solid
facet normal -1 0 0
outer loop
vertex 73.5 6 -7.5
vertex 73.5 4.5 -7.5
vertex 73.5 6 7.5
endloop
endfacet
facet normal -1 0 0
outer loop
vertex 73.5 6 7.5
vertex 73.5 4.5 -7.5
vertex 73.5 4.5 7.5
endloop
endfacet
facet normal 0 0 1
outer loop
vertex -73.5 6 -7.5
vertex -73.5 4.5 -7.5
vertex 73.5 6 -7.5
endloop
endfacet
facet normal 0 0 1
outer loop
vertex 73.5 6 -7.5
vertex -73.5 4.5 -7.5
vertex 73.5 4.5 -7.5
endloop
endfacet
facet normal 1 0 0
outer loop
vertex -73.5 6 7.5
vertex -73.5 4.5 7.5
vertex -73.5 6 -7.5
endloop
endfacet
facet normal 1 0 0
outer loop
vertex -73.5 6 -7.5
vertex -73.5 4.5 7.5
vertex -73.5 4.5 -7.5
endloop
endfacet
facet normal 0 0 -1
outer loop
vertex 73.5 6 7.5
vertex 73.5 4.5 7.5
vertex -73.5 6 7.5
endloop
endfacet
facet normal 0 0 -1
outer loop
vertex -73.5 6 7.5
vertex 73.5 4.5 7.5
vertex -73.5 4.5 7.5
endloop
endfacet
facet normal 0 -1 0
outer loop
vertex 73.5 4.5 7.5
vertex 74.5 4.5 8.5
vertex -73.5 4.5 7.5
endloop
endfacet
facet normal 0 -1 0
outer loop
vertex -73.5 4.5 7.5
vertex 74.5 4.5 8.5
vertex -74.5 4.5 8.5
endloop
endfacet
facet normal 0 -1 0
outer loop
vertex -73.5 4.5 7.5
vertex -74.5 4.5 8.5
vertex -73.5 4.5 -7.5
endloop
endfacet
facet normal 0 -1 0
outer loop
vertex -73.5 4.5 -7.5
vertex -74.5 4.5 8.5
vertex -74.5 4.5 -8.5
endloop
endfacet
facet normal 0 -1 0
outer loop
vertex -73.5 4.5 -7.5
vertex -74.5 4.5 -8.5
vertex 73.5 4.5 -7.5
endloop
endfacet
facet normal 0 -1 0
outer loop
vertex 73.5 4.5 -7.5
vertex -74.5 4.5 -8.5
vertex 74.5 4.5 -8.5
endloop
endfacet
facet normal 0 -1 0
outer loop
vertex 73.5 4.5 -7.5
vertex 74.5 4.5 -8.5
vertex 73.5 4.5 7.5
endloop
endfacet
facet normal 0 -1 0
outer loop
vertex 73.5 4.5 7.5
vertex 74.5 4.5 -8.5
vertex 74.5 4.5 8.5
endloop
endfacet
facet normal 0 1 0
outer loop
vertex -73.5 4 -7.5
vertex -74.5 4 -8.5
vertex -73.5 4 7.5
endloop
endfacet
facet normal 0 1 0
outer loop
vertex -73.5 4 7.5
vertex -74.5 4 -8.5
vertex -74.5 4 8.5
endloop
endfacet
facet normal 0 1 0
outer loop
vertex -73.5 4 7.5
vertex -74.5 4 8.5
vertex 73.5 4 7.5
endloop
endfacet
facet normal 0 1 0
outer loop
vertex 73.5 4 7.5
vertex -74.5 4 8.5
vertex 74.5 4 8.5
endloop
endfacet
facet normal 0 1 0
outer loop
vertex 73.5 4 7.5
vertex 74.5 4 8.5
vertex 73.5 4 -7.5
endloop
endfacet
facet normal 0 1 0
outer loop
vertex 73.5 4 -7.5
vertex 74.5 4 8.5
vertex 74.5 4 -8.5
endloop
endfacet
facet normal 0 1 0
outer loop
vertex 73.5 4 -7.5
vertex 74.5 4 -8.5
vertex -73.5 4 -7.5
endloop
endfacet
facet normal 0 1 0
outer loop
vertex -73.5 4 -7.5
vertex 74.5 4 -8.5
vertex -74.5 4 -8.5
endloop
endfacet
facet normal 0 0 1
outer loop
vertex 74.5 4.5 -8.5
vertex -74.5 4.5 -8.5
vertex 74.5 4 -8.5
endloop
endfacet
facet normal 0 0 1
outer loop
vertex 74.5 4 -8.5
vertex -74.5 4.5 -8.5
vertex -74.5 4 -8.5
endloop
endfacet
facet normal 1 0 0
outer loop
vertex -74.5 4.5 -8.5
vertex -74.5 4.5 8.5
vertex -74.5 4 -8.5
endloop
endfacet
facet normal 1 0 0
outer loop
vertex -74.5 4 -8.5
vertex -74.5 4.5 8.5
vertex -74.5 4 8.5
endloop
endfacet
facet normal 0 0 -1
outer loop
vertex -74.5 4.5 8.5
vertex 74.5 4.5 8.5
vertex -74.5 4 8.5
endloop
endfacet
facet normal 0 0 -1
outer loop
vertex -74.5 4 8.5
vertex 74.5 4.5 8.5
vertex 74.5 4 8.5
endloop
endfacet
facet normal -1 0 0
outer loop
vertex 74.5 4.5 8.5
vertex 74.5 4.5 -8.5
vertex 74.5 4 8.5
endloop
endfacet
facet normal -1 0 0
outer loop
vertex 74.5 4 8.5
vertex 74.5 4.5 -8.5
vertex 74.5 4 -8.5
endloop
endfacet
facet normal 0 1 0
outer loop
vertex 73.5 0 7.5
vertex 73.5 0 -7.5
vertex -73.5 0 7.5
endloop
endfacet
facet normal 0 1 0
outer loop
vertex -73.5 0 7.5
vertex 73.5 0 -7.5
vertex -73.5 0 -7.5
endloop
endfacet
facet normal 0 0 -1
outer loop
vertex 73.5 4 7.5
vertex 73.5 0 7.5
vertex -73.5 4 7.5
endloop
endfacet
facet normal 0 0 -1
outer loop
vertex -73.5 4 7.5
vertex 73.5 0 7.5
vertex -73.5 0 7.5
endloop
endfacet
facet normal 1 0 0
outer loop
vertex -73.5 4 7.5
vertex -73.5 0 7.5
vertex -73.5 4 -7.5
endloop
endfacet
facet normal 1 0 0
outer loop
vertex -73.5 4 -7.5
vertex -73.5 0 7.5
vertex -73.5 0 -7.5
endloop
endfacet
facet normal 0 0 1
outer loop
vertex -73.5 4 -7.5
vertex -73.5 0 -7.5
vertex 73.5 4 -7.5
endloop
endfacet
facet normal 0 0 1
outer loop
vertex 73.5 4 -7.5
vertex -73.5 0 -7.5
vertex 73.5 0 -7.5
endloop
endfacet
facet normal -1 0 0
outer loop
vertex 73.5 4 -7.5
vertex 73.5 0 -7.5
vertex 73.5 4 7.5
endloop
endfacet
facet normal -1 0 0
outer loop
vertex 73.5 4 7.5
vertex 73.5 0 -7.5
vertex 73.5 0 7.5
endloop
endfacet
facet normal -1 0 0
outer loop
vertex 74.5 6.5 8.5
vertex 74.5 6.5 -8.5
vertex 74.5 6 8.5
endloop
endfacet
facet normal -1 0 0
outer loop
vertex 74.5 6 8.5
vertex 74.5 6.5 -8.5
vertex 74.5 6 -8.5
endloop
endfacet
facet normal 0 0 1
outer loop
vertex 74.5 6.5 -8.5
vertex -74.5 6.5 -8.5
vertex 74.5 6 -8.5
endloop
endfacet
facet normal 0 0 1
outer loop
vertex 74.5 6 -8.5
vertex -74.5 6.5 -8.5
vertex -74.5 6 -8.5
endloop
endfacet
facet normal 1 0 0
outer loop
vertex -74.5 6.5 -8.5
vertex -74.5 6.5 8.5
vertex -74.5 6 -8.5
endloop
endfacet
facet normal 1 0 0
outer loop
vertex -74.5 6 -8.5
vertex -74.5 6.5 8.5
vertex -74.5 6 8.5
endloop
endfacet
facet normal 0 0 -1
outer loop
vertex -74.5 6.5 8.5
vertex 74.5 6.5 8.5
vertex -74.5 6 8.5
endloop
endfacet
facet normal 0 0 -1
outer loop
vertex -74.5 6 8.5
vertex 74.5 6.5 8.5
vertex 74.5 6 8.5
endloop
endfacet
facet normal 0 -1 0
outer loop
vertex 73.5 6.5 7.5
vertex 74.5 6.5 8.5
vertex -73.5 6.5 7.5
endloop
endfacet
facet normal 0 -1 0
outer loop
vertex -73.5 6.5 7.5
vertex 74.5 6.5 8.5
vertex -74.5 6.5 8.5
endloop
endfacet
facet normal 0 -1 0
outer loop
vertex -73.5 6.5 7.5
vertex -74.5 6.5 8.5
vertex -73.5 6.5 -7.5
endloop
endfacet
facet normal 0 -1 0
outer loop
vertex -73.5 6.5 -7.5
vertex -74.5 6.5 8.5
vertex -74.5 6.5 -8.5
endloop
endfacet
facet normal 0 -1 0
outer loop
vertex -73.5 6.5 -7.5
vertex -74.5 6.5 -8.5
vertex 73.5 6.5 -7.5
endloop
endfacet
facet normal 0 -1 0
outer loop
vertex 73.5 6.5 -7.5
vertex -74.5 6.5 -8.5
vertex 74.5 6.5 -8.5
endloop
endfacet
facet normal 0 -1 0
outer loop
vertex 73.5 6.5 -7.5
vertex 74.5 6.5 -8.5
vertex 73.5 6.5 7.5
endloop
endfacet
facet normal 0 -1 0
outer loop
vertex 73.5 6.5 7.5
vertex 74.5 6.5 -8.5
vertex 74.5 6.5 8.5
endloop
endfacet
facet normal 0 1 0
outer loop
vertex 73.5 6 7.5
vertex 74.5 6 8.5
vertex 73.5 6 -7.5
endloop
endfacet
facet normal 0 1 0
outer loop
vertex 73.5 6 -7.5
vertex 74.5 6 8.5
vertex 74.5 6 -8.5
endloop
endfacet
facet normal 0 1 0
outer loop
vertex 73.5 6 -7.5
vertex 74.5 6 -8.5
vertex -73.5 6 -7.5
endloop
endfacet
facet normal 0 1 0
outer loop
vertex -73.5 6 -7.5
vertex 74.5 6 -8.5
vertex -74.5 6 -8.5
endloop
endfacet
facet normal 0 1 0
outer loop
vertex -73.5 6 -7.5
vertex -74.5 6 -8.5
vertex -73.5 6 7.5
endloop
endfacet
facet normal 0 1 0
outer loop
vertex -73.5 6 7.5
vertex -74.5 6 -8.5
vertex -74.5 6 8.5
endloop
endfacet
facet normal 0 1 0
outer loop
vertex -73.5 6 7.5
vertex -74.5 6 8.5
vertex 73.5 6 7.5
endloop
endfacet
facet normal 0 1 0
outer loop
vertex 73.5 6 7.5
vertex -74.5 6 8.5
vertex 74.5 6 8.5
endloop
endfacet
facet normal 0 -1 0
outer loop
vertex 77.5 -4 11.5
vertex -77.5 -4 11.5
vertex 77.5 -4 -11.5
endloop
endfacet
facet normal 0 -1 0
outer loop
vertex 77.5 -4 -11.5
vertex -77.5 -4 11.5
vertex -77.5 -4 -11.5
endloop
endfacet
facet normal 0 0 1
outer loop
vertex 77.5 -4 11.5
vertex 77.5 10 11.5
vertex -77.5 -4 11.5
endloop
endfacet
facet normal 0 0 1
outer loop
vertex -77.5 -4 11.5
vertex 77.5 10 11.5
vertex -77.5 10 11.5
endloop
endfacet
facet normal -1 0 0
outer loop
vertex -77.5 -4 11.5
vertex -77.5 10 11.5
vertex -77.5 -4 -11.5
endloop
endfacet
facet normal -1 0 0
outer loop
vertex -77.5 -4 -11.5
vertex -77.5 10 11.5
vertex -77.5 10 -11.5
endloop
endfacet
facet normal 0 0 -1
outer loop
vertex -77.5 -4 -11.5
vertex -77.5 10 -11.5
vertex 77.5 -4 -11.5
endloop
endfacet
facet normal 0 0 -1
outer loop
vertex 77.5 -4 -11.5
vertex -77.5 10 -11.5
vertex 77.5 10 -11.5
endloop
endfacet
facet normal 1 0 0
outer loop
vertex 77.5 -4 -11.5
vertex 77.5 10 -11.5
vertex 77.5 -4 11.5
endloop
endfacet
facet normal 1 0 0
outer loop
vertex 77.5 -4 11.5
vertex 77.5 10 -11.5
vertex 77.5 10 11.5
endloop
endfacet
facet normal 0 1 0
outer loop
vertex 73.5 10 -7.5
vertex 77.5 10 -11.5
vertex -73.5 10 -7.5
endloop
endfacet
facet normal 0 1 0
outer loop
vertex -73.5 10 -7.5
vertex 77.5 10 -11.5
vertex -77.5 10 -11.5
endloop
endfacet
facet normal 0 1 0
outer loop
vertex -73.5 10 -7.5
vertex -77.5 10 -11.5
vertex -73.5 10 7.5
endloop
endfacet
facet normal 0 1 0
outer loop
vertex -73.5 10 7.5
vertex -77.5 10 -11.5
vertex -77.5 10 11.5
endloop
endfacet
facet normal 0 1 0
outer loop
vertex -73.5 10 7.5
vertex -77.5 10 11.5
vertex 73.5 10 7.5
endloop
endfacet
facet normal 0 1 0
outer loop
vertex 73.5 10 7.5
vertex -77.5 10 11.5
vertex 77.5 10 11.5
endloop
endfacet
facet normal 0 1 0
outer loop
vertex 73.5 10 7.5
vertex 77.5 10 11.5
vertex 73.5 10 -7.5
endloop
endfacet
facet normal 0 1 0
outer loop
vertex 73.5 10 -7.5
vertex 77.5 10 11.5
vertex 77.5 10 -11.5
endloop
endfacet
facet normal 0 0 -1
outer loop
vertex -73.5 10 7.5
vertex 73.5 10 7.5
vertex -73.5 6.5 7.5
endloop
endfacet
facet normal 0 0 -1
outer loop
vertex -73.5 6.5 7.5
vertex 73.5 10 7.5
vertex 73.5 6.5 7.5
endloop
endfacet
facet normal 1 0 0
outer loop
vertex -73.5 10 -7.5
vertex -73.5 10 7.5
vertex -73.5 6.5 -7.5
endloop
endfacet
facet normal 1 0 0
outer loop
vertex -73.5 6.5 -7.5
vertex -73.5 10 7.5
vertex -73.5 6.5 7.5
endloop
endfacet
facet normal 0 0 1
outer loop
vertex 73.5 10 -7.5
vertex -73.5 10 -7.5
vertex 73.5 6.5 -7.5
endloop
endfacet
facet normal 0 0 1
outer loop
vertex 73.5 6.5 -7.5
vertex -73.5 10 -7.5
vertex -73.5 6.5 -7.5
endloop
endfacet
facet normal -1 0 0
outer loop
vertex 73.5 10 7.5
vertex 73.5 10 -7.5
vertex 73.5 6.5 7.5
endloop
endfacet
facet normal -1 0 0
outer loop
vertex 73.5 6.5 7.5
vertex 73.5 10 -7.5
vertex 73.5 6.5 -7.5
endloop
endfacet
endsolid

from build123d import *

# Parameters (mm, degrees)
SKIZZE1_W                       = 155
SKIZZE1_H                       = 23
SKIZZE1_W_2                     = 147
SKIZZE1_H_2                     = 15
AUFSATZ_LINEAR_AUSTRAGEN1_DEPTH = 10
SKIZZE3_W                       = 155
SKIZZE3_H                       = 23
AUFSATZ_LINEAR_AUSTRAGEN3_DEPTH = 4
SKIZZE4_W                       = 149
SKIZZE4_H                       = 17
SKIZZE4_W_2                     = 147
SKIZZE4_H_2                     = 15
SCHNITT_LINEAR_AUSTRAGEN1_DEPTH = 0.5
SKIZZE5_W                       = 149
SKIZZE5_H                       = 17
SCHNITT_LINEAR_AUSTRAGEN2_DEPTH = 0.5


with BuildPart() as part:
    # Skizze1 → Aufsatz-Linear austragen1 (new body)
    with BuildSketch(Plane(origin=(0, 0, 0), x_dir=(1, 0, 0), z_dir=(0, 1, 0))):
        Rectangle(SKIZZE1_W, SKIZZE1_H)
        Rectangle(SKIZZE1_W_2, SKIZZE1_H_2, mode=Mode.SUBTRACT)
    extrude(amount=AUFSATZ_LINEAR_AUSTRAGEN1_DEPTH)

    # Skizze3 → Aufsatz-Linear austragen3 (add)
    with BuildSketch(Plane.XZ):
        Rectangle(SKIZZE3_W, SKIZZE3_H)
    extrude(amount=AUFSATZ_LINEAR_AUSTRAGEN3_DEPTH)

    # Skizze4 → Schnitt-Linear austragen1 (cut)
    with BuildSketch(Plane(origin=(0, 4, 0), x_dir=(1, 0, 0), z_dir=(0, 1, 0))):
        Rectangle(SKIZZE4_W, SKIZZE4_H)
        Rectangle(SKIZZE4_W_2, SKIZZE4_H_2, mode=Mode.SUBTRACT)
    extrude(amount=SCHNITT_LINEAR_AUSTRAGEN1_DEPTH, mode=Mode.SUBTRACT)

    # Skizze5 → Schnitt-Linear austragen2 (cut)
    with BuildSketch(Plane(origin=(0, 6, 0), x_dir=(1, 0, 0), z_dir=(0, 1, 0))):
        Rectangle(SKIZZE5_W, SKIZZE5_H)
    extrude(amount=SCHNITT_LINEAR_AUSTRAGEN2_DEPTH, mode=Mode.SUBTRACT)


solid = part.part
